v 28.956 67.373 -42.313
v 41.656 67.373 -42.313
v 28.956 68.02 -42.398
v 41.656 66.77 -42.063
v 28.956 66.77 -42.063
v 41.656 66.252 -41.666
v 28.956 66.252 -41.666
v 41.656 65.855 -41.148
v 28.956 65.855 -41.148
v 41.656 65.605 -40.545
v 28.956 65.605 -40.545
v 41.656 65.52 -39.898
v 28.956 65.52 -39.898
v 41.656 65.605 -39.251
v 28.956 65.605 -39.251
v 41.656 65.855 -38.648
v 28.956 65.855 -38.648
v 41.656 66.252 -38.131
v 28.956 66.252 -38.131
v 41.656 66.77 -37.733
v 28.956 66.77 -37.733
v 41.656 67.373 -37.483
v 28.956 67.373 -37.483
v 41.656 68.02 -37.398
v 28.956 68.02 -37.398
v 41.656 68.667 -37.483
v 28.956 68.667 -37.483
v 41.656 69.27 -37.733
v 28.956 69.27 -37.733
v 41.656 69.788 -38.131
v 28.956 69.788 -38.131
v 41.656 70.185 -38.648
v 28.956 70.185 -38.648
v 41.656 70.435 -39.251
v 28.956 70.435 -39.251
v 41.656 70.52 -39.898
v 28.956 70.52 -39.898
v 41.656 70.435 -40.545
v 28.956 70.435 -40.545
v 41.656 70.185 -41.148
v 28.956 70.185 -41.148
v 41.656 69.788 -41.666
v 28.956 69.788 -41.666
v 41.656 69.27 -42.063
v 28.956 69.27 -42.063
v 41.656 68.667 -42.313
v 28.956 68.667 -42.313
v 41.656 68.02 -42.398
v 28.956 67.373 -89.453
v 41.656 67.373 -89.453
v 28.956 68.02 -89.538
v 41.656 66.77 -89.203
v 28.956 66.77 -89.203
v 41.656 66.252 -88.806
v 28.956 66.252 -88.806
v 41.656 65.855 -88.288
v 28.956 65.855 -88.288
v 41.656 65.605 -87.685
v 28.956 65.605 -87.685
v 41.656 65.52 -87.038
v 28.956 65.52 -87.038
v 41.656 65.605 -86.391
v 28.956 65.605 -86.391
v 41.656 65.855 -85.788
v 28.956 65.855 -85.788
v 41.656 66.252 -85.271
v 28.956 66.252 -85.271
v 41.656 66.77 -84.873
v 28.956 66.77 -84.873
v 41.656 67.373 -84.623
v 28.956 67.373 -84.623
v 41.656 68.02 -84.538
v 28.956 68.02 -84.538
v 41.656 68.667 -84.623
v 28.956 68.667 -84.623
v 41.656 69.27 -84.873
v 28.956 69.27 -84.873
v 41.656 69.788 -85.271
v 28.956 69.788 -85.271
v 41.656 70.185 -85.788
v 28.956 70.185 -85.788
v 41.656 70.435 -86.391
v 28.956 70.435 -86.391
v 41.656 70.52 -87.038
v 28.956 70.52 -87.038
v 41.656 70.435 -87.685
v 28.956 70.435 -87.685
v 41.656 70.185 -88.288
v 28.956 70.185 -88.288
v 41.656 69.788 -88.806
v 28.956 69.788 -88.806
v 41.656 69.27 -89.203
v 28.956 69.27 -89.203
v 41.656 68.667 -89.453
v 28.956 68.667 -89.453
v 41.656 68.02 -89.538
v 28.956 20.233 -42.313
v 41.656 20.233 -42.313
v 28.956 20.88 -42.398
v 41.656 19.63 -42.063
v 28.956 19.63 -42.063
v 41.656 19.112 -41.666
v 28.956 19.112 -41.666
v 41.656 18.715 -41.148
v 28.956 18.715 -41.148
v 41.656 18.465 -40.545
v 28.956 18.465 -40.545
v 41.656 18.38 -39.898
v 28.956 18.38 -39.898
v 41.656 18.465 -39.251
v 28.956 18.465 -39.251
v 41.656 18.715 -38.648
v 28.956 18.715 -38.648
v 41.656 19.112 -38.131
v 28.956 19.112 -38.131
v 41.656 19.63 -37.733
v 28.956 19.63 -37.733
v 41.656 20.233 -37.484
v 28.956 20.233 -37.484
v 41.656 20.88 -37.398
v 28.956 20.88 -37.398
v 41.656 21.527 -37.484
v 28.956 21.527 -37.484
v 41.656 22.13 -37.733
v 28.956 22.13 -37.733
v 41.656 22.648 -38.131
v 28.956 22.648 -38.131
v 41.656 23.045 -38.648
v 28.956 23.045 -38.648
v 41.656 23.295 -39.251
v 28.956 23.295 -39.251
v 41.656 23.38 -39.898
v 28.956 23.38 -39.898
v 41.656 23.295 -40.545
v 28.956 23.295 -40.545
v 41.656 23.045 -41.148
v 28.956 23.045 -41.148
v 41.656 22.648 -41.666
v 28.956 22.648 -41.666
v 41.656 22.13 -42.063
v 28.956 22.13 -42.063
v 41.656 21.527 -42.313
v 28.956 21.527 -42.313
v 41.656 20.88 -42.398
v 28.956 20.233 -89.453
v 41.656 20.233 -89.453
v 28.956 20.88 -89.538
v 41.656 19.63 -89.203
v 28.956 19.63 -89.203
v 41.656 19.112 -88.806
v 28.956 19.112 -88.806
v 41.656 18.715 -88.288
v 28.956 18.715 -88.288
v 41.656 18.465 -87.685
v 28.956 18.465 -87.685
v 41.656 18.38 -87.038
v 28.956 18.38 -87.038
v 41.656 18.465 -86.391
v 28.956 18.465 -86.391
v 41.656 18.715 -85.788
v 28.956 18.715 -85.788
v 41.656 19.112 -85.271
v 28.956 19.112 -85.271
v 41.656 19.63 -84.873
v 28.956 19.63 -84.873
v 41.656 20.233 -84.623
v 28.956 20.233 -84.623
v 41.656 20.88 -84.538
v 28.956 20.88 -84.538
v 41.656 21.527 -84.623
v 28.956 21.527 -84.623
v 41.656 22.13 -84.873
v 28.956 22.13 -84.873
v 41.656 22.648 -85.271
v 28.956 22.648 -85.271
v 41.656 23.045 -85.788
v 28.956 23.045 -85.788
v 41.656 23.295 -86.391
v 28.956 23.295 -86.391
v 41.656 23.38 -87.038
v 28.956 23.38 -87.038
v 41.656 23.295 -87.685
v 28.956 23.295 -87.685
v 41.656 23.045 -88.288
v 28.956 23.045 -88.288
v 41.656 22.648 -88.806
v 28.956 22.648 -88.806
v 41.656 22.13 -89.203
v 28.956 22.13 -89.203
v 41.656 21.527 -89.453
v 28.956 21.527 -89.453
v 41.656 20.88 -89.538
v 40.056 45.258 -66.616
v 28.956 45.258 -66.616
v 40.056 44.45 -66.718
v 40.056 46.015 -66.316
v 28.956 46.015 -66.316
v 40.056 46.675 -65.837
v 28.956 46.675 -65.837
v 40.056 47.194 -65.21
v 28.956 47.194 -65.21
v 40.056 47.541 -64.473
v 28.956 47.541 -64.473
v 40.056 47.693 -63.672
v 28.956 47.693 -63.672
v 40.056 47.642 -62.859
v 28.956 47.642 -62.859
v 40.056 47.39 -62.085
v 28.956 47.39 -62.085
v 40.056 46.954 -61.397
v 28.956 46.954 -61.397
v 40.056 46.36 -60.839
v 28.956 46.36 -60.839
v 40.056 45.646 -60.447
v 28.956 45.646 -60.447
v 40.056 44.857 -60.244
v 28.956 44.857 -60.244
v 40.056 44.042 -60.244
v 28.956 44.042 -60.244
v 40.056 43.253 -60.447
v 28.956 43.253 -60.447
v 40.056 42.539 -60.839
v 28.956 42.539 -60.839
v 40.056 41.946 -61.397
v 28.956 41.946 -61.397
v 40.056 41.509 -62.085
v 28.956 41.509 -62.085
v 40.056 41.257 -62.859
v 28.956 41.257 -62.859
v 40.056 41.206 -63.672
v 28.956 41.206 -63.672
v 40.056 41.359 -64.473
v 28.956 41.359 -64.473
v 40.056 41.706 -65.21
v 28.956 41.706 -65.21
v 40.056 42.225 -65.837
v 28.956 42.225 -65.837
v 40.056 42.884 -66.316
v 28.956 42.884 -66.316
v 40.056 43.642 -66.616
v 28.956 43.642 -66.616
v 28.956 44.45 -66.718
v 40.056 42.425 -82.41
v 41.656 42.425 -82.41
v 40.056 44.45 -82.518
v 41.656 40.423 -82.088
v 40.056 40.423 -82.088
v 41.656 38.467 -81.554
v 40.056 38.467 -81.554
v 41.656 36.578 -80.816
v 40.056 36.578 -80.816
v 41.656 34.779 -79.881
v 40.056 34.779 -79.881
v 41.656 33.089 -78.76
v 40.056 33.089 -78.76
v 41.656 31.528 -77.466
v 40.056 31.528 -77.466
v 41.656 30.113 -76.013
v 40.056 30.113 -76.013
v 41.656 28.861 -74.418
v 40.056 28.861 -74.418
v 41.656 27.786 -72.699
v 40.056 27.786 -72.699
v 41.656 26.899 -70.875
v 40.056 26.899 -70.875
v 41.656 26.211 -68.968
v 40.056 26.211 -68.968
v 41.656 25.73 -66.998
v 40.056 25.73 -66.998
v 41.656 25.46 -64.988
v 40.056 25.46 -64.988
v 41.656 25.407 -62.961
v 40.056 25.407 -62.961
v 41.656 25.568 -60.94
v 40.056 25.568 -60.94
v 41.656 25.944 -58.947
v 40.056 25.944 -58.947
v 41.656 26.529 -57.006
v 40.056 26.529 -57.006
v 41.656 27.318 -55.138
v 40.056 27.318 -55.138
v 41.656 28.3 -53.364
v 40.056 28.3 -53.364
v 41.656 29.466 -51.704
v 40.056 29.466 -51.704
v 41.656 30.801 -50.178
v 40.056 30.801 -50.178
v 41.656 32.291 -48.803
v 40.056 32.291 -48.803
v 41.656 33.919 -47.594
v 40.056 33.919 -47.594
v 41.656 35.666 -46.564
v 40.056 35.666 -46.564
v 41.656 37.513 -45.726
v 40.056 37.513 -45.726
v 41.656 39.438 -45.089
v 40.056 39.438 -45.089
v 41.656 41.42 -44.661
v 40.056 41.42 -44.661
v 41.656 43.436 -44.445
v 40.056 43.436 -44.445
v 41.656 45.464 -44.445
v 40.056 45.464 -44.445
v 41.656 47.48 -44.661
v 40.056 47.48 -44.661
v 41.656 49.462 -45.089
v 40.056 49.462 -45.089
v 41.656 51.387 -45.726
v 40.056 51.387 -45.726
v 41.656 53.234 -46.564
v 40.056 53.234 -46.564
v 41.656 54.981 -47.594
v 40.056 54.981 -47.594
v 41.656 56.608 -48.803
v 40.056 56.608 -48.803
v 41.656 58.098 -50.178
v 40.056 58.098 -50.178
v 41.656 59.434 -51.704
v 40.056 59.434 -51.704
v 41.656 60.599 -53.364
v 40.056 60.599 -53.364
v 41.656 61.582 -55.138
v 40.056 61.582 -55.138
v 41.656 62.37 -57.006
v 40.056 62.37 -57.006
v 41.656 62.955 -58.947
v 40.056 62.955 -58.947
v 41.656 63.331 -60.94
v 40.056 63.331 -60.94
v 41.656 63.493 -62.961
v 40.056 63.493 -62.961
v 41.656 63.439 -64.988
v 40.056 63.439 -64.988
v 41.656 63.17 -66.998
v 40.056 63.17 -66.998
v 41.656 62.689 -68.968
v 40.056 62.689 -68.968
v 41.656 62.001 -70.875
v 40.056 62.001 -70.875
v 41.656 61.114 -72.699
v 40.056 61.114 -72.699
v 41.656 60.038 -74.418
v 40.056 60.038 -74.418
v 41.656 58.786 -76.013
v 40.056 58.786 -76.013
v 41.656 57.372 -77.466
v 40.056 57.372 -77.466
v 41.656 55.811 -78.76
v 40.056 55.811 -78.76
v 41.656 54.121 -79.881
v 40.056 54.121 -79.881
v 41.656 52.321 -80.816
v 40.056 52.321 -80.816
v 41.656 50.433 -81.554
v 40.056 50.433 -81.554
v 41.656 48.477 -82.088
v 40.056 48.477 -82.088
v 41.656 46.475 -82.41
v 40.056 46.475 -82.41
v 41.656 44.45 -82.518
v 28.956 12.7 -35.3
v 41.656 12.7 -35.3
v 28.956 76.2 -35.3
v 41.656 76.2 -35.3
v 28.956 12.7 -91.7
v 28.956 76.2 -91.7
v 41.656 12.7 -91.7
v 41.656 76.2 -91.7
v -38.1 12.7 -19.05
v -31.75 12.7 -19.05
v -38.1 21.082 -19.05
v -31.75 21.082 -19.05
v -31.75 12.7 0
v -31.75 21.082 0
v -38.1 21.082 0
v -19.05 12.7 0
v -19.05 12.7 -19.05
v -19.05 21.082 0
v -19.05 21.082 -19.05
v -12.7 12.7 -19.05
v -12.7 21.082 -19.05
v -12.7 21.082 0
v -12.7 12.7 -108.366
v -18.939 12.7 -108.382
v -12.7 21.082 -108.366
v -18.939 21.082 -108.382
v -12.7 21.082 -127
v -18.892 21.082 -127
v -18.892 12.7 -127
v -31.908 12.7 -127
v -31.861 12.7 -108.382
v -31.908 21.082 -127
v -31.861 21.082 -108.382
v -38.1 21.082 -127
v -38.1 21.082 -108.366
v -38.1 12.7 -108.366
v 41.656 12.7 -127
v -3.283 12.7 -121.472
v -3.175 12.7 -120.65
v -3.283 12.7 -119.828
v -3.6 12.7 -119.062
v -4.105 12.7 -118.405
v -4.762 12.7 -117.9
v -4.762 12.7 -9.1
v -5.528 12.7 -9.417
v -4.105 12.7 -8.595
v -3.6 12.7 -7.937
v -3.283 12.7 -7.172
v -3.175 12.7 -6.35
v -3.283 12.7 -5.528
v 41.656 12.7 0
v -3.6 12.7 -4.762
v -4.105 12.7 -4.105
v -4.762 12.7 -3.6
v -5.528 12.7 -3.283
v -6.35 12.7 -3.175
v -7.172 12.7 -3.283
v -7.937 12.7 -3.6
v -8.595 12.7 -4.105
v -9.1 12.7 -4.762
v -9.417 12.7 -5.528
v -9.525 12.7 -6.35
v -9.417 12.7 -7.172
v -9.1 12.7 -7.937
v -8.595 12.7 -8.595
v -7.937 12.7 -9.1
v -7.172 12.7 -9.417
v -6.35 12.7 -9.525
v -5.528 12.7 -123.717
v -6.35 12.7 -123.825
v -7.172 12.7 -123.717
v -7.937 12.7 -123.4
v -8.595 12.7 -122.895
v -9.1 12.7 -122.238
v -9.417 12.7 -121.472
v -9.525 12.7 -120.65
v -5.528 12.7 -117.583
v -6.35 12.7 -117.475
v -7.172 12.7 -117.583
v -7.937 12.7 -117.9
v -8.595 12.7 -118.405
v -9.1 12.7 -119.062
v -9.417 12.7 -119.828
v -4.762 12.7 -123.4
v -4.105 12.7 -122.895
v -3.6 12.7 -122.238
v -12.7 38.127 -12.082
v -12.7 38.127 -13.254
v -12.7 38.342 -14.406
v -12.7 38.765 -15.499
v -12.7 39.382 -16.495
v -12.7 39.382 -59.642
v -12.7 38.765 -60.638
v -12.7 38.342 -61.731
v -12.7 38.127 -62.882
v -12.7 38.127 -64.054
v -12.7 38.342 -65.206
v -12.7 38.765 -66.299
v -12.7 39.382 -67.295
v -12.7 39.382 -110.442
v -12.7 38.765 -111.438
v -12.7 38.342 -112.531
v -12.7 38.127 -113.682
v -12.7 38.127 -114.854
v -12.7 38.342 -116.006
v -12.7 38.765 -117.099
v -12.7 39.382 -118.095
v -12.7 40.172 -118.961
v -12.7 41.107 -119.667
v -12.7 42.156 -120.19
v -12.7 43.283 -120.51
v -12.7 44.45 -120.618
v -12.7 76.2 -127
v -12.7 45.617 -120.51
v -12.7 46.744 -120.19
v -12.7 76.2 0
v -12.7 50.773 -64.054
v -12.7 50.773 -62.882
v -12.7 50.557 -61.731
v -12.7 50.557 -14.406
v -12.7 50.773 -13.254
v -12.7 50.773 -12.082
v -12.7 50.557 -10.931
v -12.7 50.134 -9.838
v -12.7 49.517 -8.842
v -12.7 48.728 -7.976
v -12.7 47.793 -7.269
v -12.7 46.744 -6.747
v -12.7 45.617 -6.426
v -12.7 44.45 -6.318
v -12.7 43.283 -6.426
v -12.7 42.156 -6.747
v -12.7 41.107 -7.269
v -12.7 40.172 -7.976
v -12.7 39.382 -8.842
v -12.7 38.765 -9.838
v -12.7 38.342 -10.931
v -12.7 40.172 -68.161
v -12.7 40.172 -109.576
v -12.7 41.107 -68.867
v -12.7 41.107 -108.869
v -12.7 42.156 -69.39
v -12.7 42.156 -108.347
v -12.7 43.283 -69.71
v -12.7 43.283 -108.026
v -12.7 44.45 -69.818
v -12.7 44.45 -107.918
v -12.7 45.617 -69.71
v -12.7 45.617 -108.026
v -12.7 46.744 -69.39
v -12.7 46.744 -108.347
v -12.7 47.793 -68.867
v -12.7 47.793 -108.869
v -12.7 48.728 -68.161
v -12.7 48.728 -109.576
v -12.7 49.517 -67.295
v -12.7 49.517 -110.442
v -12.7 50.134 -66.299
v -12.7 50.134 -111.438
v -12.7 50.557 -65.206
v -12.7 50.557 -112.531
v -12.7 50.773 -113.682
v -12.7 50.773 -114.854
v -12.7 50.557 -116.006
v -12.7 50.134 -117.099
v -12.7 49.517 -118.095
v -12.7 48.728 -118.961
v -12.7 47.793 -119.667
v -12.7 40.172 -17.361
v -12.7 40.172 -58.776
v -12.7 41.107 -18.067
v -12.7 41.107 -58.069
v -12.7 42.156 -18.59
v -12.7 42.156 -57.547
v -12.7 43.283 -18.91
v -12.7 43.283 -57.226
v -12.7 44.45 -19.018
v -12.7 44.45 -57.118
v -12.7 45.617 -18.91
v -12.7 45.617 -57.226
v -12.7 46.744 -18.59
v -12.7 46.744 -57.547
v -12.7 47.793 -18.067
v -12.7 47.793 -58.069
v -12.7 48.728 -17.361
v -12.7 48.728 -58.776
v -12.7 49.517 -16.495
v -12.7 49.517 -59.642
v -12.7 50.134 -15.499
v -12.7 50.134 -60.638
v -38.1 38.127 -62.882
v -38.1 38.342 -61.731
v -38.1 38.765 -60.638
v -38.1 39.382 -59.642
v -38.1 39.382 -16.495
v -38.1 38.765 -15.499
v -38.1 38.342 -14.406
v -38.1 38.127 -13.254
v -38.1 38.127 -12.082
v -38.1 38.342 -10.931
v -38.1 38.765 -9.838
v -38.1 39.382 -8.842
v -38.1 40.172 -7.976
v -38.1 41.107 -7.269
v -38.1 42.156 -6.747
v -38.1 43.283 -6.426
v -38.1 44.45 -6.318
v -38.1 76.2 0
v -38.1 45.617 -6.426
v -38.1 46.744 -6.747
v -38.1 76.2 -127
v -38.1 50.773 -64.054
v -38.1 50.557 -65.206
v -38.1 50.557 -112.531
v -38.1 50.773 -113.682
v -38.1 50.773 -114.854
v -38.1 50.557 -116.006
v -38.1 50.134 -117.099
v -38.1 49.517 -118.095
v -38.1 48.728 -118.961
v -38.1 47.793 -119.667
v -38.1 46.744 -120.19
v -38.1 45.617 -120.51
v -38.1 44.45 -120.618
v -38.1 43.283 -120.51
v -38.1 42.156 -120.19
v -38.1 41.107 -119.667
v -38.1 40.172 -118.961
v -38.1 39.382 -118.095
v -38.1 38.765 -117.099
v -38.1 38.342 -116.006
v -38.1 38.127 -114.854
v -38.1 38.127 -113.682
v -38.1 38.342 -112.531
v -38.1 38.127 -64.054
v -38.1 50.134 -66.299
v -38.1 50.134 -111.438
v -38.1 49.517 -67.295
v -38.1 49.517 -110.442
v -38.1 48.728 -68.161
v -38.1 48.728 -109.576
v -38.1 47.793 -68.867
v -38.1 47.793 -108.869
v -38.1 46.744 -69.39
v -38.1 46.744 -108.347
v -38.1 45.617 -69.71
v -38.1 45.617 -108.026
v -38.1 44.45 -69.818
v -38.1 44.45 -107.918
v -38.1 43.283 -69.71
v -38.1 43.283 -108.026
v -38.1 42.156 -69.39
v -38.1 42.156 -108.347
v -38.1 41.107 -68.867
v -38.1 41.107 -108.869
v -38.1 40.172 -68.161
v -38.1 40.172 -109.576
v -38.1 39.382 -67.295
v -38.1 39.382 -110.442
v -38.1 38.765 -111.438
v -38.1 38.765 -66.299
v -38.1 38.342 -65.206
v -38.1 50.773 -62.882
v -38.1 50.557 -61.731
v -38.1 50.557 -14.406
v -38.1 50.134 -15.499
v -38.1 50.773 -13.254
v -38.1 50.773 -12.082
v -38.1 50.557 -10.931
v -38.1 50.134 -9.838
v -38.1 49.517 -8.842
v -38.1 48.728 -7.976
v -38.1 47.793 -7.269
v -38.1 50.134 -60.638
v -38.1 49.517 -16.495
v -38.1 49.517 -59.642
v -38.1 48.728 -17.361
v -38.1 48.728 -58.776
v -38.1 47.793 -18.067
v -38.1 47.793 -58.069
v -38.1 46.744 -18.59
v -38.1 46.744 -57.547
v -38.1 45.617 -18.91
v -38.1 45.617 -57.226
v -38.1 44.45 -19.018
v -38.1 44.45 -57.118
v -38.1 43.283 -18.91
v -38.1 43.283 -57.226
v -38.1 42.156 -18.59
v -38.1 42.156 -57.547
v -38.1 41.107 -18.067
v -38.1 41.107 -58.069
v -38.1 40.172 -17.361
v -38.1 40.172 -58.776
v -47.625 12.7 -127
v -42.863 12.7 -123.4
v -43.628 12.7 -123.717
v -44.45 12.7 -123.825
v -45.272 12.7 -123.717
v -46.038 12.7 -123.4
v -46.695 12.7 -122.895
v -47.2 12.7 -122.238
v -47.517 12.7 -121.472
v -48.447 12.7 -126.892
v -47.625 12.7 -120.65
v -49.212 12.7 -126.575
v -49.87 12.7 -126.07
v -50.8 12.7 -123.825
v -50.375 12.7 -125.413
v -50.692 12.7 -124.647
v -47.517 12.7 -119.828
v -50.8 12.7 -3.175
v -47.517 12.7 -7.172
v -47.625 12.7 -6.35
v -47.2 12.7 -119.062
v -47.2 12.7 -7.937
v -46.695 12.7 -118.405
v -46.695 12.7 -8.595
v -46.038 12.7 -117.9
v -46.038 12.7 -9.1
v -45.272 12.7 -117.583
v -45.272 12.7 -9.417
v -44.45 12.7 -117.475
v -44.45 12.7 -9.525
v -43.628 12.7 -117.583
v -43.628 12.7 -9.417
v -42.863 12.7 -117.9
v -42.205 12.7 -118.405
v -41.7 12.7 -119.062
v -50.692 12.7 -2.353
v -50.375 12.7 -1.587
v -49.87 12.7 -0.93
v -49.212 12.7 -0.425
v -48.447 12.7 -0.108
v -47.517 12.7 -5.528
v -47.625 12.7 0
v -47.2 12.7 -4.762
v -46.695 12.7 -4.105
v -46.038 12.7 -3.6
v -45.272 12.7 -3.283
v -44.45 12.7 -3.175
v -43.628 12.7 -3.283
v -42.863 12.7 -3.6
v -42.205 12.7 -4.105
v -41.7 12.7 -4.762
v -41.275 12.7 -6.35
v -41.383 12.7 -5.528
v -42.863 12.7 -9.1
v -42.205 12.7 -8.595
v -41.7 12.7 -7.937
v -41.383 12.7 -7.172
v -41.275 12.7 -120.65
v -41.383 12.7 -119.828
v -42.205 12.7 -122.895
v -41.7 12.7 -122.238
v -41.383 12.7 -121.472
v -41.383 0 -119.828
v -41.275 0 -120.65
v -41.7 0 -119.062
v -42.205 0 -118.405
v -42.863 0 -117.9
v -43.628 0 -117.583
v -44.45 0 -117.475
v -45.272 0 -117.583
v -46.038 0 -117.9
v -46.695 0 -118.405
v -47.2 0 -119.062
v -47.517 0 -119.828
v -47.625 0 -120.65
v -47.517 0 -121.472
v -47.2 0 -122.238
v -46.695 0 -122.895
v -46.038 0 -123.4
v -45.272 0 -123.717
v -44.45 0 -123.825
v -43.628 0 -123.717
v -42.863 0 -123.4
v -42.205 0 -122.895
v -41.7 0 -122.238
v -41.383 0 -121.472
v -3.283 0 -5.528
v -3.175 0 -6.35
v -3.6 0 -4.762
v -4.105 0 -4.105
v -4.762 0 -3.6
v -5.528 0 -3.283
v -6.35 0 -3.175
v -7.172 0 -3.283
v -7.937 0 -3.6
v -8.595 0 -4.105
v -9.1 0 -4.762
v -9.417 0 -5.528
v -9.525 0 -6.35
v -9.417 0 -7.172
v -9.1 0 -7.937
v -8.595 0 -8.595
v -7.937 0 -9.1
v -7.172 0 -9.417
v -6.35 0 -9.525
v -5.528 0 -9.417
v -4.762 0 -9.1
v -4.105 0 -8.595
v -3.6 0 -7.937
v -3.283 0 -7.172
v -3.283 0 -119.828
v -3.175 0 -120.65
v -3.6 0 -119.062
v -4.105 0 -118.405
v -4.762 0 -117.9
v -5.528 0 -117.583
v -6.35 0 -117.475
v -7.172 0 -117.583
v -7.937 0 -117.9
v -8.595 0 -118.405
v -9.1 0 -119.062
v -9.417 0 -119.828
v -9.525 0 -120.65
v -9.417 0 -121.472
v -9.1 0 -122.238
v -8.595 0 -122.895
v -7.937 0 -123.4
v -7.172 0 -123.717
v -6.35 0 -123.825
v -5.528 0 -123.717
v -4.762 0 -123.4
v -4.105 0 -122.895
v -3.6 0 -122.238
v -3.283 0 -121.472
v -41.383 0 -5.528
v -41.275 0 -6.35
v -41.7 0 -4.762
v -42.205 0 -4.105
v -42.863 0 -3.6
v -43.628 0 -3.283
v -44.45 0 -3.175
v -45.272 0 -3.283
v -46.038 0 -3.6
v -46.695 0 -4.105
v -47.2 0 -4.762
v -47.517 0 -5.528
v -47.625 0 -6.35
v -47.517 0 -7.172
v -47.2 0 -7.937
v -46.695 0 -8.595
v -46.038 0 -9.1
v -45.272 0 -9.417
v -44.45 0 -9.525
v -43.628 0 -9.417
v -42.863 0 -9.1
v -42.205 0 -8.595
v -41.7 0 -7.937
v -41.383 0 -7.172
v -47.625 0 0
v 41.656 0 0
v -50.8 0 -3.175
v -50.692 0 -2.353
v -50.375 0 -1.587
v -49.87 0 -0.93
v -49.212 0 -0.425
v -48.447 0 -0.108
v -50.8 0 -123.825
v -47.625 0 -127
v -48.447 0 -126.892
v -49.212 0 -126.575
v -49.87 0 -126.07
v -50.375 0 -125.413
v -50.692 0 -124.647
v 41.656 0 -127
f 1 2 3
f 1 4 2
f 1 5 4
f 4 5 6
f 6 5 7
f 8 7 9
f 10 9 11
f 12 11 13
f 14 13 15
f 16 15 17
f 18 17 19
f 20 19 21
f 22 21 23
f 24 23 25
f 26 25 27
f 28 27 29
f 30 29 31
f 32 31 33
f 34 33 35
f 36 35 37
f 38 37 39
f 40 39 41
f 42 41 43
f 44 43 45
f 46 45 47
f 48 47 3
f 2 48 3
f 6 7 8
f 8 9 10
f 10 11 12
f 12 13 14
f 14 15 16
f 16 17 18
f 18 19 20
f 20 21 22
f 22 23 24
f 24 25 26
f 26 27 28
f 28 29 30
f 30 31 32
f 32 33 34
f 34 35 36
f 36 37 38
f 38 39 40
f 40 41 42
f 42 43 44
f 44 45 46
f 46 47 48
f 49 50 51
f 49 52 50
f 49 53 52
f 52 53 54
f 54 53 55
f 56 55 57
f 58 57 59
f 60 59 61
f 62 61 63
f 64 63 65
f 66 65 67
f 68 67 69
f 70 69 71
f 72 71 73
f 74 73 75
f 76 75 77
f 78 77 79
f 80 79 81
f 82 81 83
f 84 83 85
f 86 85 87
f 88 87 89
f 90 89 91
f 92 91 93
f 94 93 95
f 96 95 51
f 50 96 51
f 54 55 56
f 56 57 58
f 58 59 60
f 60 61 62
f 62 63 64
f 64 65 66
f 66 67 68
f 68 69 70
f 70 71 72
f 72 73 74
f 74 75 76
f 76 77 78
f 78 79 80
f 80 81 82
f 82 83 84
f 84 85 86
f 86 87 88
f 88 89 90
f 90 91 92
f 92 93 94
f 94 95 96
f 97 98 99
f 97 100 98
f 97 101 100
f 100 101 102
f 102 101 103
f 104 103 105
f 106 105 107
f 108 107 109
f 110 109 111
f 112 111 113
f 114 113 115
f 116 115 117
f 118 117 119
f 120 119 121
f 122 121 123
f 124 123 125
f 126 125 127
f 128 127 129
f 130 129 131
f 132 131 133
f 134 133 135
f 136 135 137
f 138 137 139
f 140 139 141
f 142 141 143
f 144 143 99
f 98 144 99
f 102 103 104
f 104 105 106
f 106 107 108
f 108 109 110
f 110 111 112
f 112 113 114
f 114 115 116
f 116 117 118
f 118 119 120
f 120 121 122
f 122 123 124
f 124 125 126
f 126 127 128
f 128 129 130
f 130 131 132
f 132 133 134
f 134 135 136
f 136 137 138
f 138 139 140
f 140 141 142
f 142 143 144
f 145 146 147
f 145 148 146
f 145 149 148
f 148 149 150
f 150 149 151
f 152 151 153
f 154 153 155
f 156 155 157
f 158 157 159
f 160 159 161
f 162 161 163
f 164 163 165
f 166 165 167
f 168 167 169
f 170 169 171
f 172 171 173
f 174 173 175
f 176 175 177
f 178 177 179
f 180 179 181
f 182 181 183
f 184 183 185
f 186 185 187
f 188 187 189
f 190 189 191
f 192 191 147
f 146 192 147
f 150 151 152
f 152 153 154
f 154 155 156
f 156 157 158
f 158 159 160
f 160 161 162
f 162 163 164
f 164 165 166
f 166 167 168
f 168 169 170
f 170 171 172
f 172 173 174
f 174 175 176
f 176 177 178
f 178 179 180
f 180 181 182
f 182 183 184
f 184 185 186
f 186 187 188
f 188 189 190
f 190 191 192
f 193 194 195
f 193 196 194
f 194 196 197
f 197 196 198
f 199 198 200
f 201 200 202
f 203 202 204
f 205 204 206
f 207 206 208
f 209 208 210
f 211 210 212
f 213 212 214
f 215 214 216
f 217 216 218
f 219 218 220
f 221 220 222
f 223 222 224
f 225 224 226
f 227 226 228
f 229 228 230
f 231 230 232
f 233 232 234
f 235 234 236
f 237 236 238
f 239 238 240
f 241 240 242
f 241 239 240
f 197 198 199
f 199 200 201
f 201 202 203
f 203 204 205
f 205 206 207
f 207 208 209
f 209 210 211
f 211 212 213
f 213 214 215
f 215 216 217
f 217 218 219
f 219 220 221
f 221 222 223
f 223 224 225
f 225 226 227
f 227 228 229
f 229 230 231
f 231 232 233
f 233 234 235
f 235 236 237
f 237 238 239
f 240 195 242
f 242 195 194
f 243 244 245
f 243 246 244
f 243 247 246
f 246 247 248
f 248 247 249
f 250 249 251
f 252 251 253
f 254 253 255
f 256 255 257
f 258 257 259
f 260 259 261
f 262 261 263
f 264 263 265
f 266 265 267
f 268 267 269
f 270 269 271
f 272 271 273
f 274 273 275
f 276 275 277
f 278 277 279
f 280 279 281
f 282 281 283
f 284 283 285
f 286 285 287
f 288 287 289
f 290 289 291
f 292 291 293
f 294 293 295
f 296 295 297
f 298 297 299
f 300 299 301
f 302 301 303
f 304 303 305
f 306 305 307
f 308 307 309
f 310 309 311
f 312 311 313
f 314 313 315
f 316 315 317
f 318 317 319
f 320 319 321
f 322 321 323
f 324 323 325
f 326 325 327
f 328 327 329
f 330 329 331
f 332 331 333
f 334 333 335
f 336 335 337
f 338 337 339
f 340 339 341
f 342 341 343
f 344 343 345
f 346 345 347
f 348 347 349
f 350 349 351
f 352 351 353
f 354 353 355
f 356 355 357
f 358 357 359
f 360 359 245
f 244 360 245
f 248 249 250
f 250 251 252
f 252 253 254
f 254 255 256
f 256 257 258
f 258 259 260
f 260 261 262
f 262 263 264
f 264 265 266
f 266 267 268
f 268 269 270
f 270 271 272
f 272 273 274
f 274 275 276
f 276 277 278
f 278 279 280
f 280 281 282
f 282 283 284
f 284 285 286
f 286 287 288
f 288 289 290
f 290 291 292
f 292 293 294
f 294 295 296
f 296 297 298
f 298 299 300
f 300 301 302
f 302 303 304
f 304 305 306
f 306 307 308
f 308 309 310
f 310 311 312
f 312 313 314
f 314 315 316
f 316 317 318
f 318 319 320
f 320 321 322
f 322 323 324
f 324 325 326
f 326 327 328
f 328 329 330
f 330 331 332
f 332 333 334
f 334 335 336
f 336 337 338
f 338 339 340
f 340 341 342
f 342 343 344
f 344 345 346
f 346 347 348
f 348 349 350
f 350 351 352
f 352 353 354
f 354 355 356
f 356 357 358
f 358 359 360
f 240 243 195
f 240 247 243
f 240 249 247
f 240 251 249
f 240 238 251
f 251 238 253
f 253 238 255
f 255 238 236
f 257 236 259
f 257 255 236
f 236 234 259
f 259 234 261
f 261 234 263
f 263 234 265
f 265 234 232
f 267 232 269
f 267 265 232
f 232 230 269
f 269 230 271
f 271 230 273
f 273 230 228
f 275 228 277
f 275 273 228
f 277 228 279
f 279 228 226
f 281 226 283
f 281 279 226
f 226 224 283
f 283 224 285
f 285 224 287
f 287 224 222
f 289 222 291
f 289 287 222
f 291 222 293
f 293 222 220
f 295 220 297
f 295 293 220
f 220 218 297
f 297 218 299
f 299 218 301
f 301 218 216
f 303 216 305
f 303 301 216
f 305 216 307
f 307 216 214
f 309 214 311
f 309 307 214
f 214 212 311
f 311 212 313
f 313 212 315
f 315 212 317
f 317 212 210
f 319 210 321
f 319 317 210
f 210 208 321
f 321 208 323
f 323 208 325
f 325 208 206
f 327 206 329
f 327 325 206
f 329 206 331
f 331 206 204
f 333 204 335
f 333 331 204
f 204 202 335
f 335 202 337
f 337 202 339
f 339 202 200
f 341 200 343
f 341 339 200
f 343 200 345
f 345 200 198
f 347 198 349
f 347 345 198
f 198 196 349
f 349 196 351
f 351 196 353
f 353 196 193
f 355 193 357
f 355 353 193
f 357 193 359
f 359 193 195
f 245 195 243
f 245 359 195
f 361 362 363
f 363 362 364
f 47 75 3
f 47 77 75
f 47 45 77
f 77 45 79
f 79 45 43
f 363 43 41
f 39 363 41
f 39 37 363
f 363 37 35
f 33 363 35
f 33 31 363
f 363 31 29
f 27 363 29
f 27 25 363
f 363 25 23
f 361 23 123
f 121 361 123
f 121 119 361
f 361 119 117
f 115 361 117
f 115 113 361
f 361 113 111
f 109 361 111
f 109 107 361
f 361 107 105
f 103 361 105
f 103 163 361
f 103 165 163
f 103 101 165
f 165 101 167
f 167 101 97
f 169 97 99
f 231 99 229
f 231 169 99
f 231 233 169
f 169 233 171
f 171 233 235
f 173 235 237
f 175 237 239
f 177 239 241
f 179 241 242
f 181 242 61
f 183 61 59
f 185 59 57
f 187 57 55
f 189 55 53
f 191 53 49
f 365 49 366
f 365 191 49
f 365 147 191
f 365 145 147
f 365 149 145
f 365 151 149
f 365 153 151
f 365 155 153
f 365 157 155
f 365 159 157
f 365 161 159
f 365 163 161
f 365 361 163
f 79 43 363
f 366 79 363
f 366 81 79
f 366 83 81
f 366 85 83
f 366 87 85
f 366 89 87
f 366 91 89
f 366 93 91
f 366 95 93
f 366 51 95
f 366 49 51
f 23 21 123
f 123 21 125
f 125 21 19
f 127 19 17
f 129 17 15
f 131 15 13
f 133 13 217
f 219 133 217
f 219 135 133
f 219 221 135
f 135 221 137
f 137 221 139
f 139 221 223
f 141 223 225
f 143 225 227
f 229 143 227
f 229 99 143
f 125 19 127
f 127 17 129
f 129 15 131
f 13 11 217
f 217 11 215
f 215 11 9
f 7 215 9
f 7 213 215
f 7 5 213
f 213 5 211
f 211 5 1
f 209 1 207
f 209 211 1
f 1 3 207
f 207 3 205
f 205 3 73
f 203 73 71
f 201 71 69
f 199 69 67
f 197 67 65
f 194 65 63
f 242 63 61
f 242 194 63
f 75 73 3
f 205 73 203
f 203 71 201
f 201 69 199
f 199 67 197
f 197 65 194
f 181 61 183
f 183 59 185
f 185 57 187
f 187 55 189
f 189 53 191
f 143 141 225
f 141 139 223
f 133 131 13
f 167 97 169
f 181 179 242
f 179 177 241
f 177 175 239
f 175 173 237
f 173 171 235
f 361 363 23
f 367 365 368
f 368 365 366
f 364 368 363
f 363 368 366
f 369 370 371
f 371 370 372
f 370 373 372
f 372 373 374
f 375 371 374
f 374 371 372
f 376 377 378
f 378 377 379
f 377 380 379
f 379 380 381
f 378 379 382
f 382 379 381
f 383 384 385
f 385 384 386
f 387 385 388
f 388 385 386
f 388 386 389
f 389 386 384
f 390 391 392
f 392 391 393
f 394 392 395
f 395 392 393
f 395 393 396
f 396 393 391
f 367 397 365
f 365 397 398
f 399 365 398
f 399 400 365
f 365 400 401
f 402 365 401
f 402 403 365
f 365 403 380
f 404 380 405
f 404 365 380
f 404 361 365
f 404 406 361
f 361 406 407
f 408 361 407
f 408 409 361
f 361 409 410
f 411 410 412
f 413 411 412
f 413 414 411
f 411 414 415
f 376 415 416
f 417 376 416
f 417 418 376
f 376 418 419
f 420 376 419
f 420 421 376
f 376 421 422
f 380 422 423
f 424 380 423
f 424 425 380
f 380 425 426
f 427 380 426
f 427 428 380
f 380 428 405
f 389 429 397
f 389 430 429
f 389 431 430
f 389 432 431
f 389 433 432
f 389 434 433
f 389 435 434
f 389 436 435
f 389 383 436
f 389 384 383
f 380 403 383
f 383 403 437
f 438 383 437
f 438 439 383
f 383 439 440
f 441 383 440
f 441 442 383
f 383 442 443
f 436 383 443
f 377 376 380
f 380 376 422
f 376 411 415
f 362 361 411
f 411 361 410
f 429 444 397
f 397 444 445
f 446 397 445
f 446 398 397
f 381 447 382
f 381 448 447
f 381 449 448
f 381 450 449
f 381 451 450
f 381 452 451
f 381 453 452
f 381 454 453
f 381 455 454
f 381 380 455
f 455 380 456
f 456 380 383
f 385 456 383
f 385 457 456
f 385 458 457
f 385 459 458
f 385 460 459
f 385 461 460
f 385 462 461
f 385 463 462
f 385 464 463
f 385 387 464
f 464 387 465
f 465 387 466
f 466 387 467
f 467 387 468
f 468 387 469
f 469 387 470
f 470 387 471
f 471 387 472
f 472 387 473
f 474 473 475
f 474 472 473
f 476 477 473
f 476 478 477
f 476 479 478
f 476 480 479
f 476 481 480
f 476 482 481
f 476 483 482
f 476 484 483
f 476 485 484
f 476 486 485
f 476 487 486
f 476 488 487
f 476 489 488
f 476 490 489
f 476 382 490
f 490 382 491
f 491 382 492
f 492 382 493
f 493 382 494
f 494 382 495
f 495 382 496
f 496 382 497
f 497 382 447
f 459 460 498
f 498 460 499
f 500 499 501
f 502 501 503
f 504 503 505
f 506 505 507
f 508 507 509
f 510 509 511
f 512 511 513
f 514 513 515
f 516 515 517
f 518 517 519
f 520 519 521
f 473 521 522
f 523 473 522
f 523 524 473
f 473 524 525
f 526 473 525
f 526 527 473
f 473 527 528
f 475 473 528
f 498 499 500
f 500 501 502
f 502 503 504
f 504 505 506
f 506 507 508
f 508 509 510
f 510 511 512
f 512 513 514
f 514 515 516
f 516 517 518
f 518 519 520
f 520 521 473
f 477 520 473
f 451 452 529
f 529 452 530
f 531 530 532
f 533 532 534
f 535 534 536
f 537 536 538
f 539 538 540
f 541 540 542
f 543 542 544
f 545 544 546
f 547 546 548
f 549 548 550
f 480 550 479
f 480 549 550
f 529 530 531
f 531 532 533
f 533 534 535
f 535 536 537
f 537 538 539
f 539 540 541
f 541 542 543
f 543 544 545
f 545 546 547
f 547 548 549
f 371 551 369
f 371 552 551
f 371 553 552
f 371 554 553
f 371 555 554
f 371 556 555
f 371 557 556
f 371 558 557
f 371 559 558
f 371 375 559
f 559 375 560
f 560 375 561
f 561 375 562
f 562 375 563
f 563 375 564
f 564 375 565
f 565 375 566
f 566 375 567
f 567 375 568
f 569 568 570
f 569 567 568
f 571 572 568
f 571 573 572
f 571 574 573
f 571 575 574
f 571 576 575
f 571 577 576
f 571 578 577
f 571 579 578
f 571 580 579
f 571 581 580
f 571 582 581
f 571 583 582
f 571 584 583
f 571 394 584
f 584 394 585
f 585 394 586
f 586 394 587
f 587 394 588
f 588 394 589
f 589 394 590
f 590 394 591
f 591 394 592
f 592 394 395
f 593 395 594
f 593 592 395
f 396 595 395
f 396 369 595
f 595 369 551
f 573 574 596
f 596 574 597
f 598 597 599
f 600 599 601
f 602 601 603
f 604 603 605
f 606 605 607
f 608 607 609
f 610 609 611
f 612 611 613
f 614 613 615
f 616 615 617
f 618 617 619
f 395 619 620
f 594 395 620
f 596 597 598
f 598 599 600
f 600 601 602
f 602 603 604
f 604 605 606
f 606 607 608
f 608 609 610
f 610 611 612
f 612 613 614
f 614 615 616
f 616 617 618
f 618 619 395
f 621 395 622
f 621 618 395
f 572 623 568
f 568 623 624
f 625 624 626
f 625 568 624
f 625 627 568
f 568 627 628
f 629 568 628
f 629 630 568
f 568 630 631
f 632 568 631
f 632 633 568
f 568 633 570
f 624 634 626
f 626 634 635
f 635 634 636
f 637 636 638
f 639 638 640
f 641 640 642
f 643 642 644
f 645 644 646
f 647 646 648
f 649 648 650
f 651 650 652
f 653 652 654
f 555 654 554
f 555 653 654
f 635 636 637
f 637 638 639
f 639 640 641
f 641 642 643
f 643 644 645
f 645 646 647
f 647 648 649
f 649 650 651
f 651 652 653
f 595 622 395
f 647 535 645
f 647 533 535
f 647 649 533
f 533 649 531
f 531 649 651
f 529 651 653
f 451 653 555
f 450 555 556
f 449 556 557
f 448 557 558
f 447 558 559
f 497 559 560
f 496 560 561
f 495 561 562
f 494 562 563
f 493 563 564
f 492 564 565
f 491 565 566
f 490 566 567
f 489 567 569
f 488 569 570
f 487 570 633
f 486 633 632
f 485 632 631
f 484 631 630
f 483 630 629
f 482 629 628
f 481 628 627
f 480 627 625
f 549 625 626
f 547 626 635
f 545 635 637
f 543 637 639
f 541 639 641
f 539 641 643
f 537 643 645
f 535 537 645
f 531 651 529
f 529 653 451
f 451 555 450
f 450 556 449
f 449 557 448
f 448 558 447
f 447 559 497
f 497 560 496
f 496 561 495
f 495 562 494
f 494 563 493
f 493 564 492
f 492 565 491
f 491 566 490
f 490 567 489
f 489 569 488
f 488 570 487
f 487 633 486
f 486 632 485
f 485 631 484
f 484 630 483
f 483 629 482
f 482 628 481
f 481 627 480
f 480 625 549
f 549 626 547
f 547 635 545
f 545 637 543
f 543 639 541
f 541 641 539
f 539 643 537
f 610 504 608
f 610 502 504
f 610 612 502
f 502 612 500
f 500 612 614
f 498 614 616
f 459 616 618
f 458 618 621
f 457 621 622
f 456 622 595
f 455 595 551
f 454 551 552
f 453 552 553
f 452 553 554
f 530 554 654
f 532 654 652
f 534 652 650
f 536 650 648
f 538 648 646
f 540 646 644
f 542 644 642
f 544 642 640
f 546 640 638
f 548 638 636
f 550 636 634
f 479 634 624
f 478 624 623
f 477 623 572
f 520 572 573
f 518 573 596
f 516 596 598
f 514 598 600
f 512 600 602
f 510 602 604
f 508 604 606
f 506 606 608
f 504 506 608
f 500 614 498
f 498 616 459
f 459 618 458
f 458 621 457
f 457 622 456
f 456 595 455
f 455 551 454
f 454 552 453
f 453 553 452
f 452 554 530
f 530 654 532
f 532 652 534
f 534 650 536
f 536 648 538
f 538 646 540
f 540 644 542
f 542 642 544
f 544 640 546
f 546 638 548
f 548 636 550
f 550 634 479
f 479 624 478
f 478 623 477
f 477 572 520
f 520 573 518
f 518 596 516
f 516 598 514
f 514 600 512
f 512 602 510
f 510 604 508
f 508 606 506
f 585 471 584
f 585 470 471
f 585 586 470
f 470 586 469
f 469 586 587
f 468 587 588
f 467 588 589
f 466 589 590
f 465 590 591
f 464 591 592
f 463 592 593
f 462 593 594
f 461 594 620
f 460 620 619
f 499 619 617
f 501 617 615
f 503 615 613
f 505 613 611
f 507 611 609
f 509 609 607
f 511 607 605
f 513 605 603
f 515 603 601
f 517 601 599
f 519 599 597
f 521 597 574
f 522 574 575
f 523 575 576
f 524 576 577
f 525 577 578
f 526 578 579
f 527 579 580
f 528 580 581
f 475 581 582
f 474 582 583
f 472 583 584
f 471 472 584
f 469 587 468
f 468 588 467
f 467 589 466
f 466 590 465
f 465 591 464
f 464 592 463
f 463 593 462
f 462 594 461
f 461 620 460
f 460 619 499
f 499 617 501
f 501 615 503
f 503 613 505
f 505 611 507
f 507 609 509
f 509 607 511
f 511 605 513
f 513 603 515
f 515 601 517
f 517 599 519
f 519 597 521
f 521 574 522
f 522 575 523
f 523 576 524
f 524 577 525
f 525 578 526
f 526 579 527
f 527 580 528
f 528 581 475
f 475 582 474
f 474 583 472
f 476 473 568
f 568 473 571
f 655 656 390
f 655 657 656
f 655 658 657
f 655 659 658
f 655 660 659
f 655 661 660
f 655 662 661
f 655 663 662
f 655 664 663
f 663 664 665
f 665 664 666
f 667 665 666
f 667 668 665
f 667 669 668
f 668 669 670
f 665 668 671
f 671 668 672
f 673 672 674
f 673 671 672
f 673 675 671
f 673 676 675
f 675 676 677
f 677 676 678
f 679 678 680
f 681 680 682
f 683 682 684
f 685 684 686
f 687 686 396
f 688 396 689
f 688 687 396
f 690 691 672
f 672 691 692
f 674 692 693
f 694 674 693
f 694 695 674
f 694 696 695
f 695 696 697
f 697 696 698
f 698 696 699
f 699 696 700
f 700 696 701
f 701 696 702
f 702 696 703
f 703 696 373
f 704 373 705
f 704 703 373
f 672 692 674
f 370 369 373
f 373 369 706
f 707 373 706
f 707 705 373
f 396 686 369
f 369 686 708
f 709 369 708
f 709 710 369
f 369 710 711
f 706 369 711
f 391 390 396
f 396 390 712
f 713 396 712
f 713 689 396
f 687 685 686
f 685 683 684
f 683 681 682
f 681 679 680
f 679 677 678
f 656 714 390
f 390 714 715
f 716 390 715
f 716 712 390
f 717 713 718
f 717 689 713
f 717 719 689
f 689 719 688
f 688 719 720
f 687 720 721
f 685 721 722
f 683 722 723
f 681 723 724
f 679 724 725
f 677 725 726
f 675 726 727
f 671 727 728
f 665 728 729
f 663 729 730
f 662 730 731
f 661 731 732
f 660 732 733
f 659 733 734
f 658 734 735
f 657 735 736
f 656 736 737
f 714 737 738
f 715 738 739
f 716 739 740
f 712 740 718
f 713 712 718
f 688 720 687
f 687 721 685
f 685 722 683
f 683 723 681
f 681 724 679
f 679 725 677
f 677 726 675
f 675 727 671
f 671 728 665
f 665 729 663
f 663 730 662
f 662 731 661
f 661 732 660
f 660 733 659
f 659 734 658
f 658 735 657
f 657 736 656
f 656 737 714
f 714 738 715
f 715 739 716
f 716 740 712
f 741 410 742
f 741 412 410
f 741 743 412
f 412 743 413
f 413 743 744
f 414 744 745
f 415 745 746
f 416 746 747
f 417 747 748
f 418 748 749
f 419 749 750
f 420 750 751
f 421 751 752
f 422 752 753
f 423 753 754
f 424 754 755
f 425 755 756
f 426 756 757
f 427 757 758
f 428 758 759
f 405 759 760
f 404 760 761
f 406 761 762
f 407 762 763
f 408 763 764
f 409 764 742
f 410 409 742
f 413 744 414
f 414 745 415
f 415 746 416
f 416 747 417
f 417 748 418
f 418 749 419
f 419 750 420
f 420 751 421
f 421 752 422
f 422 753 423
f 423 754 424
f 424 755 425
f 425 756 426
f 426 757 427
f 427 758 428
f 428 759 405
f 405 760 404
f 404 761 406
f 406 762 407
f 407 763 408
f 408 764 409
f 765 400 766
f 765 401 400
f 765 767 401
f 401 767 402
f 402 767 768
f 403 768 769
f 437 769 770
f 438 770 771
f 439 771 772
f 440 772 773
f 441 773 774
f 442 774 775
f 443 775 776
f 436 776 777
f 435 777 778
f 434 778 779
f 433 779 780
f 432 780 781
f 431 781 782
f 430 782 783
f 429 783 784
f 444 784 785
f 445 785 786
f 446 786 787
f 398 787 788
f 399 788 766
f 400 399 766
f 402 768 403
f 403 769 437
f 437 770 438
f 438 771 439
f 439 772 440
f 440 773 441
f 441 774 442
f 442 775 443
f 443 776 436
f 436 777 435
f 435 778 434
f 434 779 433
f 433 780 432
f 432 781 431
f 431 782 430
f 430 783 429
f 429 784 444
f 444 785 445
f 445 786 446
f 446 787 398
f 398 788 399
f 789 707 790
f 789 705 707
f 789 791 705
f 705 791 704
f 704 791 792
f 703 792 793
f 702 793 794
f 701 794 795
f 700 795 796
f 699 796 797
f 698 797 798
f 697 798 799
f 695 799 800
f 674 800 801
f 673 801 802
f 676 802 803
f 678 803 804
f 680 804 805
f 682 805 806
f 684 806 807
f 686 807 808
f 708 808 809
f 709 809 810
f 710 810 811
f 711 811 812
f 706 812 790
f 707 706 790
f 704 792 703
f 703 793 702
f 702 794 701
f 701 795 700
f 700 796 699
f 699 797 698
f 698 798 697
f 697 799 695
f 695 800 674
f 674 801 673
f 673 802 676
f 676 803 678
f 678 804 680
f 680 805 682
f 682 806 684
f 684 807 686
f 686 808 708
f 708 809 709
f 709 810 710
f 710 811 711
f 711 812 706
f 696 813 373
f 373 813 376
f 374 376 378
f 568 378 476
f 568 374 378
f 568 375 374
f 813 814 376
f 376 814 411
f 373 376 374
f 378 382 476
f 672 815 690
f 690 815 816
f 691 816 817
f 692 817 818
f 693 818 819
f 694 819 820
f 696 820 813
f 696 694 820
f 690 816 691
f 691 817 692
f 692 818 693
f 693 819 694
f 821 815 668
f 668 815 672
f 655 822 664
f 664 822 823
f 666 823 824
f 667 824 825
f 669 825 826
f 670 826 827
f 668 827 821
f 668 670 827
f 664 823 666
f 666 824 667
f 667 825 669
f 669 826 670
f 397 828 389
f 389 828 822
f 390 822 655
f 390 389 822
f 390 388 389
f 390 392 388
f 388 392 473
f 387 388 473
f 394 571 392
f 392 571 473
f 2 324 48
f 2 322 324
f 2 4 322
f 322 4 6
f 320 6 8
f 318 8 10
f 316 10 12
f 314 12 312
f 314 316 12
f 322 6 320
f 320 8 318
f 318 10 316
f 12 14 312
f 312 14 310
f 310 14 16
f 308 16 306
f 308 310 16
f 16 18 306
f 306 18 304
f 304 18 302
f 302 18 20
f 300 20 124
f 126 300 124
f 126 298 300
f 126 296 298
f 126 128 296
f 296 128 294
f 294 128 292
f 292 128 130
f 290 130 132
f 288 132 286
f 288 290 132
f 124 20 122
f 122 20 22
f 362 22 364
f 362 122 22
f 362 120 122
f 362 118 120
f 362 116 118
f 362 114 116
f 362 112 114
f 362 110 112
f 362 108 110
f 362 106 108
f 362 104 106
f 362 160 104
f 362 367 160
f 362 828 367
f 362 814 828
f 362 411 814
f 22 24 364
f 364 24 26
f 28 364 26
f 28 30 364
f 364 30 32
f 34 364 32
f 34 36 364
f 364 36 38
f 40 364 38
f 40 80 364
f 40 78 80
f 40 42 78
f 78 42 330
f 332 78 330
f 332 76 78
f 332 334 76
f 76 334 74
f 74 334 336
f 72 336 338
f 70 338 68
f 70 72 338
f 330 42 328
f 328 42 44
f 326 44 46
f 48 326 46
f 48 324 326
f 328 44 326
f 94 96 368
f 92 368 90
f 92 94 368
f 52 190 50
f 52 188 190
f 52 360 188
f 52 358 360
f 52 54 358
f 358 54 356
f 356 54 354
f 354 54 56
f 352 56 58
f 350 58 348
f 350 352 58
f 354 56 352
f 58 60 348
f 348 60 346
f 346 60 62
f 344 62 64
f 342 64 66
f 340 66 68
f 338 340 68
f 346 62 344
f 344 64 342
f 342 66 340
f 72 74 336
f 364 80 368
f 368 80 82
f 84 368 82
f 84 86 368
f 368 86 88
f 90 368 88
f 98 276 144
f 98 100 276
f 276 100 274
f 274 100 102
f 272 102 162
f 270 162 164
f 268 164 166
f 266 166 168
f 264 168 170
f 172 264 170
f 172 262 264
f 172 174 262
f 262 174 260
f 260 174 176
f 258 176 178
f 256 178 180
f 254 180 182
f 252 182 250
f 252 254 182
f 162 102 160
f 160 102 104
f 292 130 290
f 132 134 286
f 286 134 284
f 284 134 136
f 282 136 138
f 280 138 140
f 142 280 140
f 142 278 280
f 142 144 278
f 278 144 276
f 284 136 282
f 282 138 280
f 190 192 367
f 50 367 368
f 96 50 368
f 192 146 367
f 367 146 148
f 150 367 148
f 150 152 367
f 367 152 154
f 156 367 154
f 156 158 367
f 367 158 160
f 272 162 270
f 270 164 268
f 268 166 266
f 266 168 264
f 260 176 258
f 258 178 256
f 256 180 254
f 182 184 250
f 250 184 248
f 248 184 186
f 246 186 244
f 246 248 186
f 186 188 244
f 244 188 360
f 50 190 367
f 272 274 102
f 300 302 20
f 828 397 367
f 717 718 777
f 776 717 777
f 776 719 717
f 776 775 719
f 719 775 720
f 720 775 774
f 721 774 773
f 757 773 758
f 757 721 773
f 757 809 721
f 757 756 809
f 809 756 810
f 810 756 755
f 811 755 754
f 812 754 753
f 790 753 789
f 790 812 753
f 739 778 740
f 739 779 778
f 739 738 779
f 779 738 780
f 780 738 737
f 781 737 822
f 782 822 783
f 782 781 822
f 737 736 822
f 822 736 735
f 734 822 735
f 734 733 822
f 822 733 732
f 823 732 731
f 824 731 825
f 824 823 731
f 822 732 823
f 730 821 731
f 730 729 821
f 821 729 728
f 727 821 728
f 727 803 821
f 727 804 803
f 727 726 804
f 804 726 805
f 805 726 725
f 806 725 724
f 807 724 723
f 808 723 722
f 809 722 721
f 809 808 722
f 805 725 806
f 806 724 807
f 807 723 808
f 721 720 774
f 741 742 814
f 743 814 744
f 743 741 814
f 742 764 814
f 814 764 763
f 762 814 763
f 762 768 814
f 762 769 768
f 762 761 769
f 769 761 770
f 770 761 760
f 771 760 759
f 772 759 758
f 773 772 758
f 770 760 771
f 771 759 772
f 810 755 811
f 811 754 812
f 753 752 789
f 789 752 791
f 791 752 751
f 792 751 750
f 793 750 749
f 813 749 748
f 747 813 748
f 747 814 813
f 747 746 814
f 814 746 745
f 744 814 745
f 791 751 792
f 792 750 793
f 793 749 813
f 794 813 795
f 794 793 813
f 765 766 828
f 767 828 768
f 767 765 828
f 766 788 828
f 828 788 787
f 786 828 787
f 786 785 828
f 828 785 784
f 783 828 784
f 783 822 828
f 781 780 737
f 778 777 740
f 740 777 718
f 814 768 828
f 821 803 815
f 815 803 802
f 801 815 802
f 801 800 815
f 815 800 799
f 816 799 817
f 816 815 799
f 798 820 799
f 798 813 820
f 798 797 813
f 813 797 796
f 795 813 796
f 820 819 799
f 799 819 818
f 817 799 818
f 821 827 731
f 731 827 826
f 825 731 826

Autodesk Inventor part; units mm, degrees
ref_plane "YZ Plane" through (0, 0, 0) normal (1, 0, 0) x (0, 1, 0)
ref_plane "XZ Plane" through (0, 0, 0) normal (0, 1, 0) x (-1, 0, 0)
ref_plane "XY Plane" through (0, 0, 0) normal (0, 0, 1) x (1, 0, 0)
sketch "Sketch1" plane through (0, 0, 0) normal (0, 1, 0) x (-1, 0, 0)
  line L0 (3.175, 0) -> (47.625, 0)
  line L1 (50.8, -3.175) -> (50.8, -123.825)
  line L2 (47.625, -127) -> (3.175, -127)
  arc A0 (50.8, -3.175) -> (47.625, 0) centre (47.625, -3.175) ccw
  arc A1 (47.625, -127) -> (50.8, -123.825) centre (47.625, -123.825) ccw
  line L3 (0, 0) -> (-41.656, 0)
  line L4 (-41.656, 0) -> (-41.656, -127)
  line L5 (-41.656, -127) -> (0, -127)
  line L6 (3.175, -127) -> (0, -127)
  line L7 (3.175, 0) -> (0, 0)
  point P0 (50.8, -127)
  point P1 (50.8, 0)
  point P2 (0, -127)
  dimension "d0" = 50.8
  dimension "d1" = 127
  dimension "d4" = 3.175
  dimension "d39" = 41.656
  dimension "d40" = 127
extrude "Extrusion1" add sketch "Sketch1" along normal blind 12.7
sketch "Sketch2" plane through (0, 12.7, 0) normal (0, 1, 0) x (1, 0, 0)
  line L0 (0, 0) -> (-6.35, 0) construction
  line L1 (-6.35, 0) -> (-6.35, 6.35) construction
  line L2 (-6.35, 6.35) -> (0, 6.35) construction
  line L3 (0, 6.35) -> (0, 0) construction
  circle A0 centre (-6.35, 6.35) radius 3.175
  line L4 (0, 3.175) -> (0, 123.825) construction
  line L5 (0, 63.5) -> (-50.8802, 63.5) construction
  line L6 (-50.8802, 63.5) -> (-25.4, 127) construction
  line L7 (41.656, 127) -> (-47.625, 127) construction
  line L8 (-25.4, 127) -> (-25.4, 0) construction
  line L9 (-47.625, 0) -> (41.656, 0) construction
  circle A1 centre (-6.35, 120.65) radius 3.175
  circle A2 centre (-44.45, 6.35) radius 3.175
  circle A3 centre (-44.45, 120.65) radius 3.175
  point P0 (-3.175, 127)
  point P1 (-3.175, 0)
  dimension "d5" = 6.35
  dimension "d6" = 6.35
  dimension "d7" = 6.35
extrude "Extrusion2" cut sketch "Sketch2" against normal through all
sketch "Sketch3" plane through (0, 12.7, 0) normal (0, 1, 0) x (1, 0, 0)
  line L0 (0, 0) -> (-12.7, 0) construction
  line L1 (0, 0) -> (12.7, 0) construction
  line L2 (-47.625, 0) -> (41.656, 0) construction
  line L3 (-25.4, 0) -> (-25.4, 127) construction
  line L4 (41.656, 127) -> (-47.625, 127) construction
  line L5 (-50.8, 0) -> (-38.1, 0) construction
  line L6 (-38.1, 0) -> (-12.7, 0)
  line L7 (-12.7, 0) -> (-12.7, 127)
  line L8 (-12.7, 127) -> (-38.1, 127)
  line L9 (-38.1, 127) -> (-38.1, 0)
  point P0 (-3.175, 0)
  point P1 (-3.175, 127)
  dimension "d14" = 12.7
  dimension "d15" = 180
  dimension "d36" = 25.4
extrude "Extrusion3" add sketch "Sketch3" along normal blind 63.5
sketch "Sketch5" plane through (-12.7, 12.7, 0) normal (1, 0, 0) x (0, 0, -1)
  line L0 (0, 63.5) -> (127, 63.5) construction
  line L1 (63.5, 63.5) -> (63.5, 0) construction
  line L2 (123.825, 0) -> (3.175, 0) construction
  line L3 (127, 0) -> (127, 63.5) construction
  circle A0 centre (63.4683, 31.7498) radius 6.35
  circle A1 centre (12.6683, 31.7498) radius 6.35
  circle A2 centre (114.2683, 31.7498) radius 6.35
  line L4 (0, 0) -> (0, 63.5) construction
  line L5 (0, 31.75) -> (127, 31.75) construction
  point P0 (0, -12.7)
  dimension "d24" = 12.7
  dimension "d27" = 12.7
  dimension "d37" = 50.8
  dimension "d38" = 50.8
extrude "Extrusion5" cut sketch "Sketch5" against normal through all
sketch "Sketch6" plane through (0, 12.7, 0) normal (0, 1, 0) x (1, 0, 0)
  line L0 (-12.7, 0) -> (-19.05, 0)
  line L1 (-19.05, 0) -> (-19.05, 19.05)
  line L2 (-19.05, 19.05) -> (-12.7, 19.05)
  line L3 (-12.7, 19.05) -> (-12.7, 0)
  line L4 (-38.1, 127) -> (-38.1, 0) construction
  line L5 (-38.4604, 63.7403) -> (-13.0604, 63.7086) construction
  line L6 (-12.7, 69.8183) -> (-12.7, 57.1183) construction
  line L7 (-12.541, 127.416) -> (-18.891, 127.4319)
  line L8 (-18.891, 127.4319) -> (-18.9385, 108.3819)
  line L9 (-18.9385, 108.3819) -> (-12.5885, 108.3661)
  line L10 (-12.5885, 108.3661) -> (-12.541, 127.416)
  line L11 (-47.625, 0) -> (41.656, 0) construction
  line L12 (-25.4, 0) -> (-25.4, 127) construction
  line L13 (41.656, 127) -> (-47.625, 127) construction
  line L14 (-38.1, 0) -> (-31.75, 0)
  line L15 (-31.75, 0) -> (-31.75, 19.05)
  line L16 (-31.75, 19.05) -> (-38.1, 19.05)
  line L17 (-38.1, 19.05) -> (-38.1, 0)
  line L18 (-38.1, 69.8183) -> (-38.1, 57.1183) construction
  line L19 (-38.259, 127.416) -> (-31.909, 127.4319)
  line L20 (-31.909, 127.4319) -> (-31.8615, 108.3819)
  line L21 (-31.8615, 108.3819) -> (-38.2115, 108.3661)
  line L22 (-38.2115, 108.3661) -> (-38.259, 127.416)
  line L23 (-47.625, 0) -> (-2.456, 0) construction
  point P0 (0, 0)
  point P1 (-3.175, 0)
  point P2 (-3.175, 127)
  point P3 (-37.7396, 63.7086)
  point P4 (-38.1, 69.8183)
  point P5 (-38.1, 57.1183)
  dimension "d30" = 6.35
  dimension "d31" = 19.05
extrude "Extrusion6" cut sketch "Sketch6" along normal blind 8.382
sketch "Sketch7" plane through (0, 12.7, 0) normal (0, 1, 0) x (1, 0, 0)
  line L0 (41.5616, 127.6536) -> (41.5616, 0) construction
  line L1 (41.656, 0) -> (41.656, 127) projected
  line L2 (41.656, 63.5) -> (28.956, 63.5) construction
  line L3 (28.956, 63.5) -> (28.956, 35.3)
  line L4 (28.956, 35.3) -> (41.656, 35.3)
  line L5 (41.656, 35.3) -> (41.656, 63.5)
  line L6 (28.956, 63.5) -> (28.956, 91.7)
  line L7 (28.956, 91.7) -> (41.656, 91.7)
  line L8 (41.656, 91.7) -> (41.656, 63.5)
  point P0 (0, 0)
  dimension "d41" = 12.7
  dimension "d42" = 28.2
extrude "Extrusion7" add sketch "Sketch7" along normal blind 63.5
sketch "Sketch8" plane through (41.656, 0, 0) normal (1, 0, 0) x (0, 0, -1)
  line L0 (127, 0) -> (123.825, 0) construction
  line L1 (0, 0) -> (127, 0) construction
  line L2 (123.825, 0) -> (3.175, 0) construction
  line L3 (63.5, 0) -> (63.5, 13.8176) construction
  circle A0 centre (63.4683, 44.4498) radius 6.35 construction
  line L4 (63.5, 13.8176) -> (63.4683, 44.4498) construction
  circle A1 centre (63.4683, 44.4498) radius 19.05
  dimension "d45" = 13.8176
  dimension "d46" = 38.1
extrude "Extrusion8" cut sketch "Sketch8" against normal blind 1.6
sketch "Sketch9" plane through (41.656, 0, 0) normal (1, 0, 0) x (0, 0, -1)
  line L0 (127, 0) -> (123.825, 0) construction
  line L1 (0, 0) -> (127, 0) construction
  line L2 (123.825, 0) -> (3.175, 0) construction
  line L3 (63.5, 0) -> (63.5, 13.8176) construction
  circle A0 centre (63.4683, 44.4498) radius 3.25
  line L4 (63.5, 13.8176) -> (63.4683, 44.4498) construction
  circle A1 centre (63.4683, 44.4498) radius 19.05 construction
  dimension "d49" = 13.8176
  dimension "d50" = 38.1
  dimension "d51" = 6.5
extrude "Extrusion9" cut sketch "Sketch9" against normal through all
sketch "Sketch10" plane through (41.656, 0, 0) normal (1, 0, 0) x (0, 0, -1)
  line L0 (127, 0) -> (123.825, 0) construction
  line L1 (0, 0) -> (127, 0) construction
  line L2 (123.825, 0) -> (3.175, 0) construction
  line L3 (63.5, 0) -> (63.5, 13.8176) construction
  circle A0 centre (63.4683, 44.4498) radius 6.35 construction
  line L4 (63.5, 13.8176) -> (63.4683, 44.4498) construction
  circle A1 centre (63.4683, 44.4498) radius 19.05 construction
  line L5 (87.0383, 68.0198) -> (39.8983, 68.0198) construction
  line L6 (39.8983, 68.0198) -> (39.8983, 20.8798) construction
  line L7 (39.8983, 20.8798) -> (87.0383, 20.8798) construction
  line L8 (87.0383, 20.8798) -> (87.0383, 68.0198) construction
  circle A2 centre (63.4683, 44.4498) radius 3.25 construction
  line L9 (87.0383, 68.0198) -> (39.8983, 20.8798) construction
  line L10 (39.8983, 68.0198) -> (87.0383, 20.8798) construction
  circle A3 centre (87.0383, 20.8798) radius 2.5
  circle A4 centre (39.8984, 20.8798) radius 2.5
  circle A5 centre (39.8983, 68.0198) radius 2.5
  circle A6 centre (87.0383, 68.0198) radius 2.5
  dimension "d54" = 13.8176
  dimension "d55" = 38.1
  dimension "d56" = 47.14
  dimension "d57" = 47.14
  dimension "d58" = 5
  dimension "d59" = 5
  dimension "d60" = 5
  dimension "d61" = 5
extrude "Extrusion10" cut sketch "Sketch10" against normal up to surface (12.7 mm away)
sketch "Sketch11" plane through (0, 0, 0) normal (0, -1, 0) x (1, 0, 0)
  line L0 (41.656, 0) -> (41.656, -35.3) construction
  line L1 (41.656, 0) -> (-47.625, 0) construction
  line L2 (-50.8, -3.175) -> (-50.8, -123.825) construction
  line L3 (-47.625, -127) -> (41.656, -127) construction
  line L4 (41.656, -127) -> (41.656, 0) construction
  arc A0 (-47.625, 0) -> (-50.8, -3.175) centre (-47.625, -3.175) ccw construction
  arc A1 (-50.8, -123.825) -> (-47.625, -127) centre (-47.625, -123.825) ccw construction
  circle A2 centre (-44.45, -6.35) radius 3.175 construction
  circle A3 centre (-44.45, -6.35) radius 3.175 construction
  circle A4 centre (-6.35, -6.35) radius 3.175 construction
  circle A5 centre (-6.35, -6.35) radius 3.175 construction
  circle A6 centre (-44.45, -120.65) radius 3.175 construction
  circle A7 centre (-44.45, -120.65) radius 3.175 construction
  circle A8 centre (-6.35, -120.65) radius 3.175 construction
  circle A9 centre (-6.35, -120.65) radius 3.175 construction
  point P0 (0, 0)
  dimension "d64" = 3.175
properties part number "Near Gantry Bracket"
